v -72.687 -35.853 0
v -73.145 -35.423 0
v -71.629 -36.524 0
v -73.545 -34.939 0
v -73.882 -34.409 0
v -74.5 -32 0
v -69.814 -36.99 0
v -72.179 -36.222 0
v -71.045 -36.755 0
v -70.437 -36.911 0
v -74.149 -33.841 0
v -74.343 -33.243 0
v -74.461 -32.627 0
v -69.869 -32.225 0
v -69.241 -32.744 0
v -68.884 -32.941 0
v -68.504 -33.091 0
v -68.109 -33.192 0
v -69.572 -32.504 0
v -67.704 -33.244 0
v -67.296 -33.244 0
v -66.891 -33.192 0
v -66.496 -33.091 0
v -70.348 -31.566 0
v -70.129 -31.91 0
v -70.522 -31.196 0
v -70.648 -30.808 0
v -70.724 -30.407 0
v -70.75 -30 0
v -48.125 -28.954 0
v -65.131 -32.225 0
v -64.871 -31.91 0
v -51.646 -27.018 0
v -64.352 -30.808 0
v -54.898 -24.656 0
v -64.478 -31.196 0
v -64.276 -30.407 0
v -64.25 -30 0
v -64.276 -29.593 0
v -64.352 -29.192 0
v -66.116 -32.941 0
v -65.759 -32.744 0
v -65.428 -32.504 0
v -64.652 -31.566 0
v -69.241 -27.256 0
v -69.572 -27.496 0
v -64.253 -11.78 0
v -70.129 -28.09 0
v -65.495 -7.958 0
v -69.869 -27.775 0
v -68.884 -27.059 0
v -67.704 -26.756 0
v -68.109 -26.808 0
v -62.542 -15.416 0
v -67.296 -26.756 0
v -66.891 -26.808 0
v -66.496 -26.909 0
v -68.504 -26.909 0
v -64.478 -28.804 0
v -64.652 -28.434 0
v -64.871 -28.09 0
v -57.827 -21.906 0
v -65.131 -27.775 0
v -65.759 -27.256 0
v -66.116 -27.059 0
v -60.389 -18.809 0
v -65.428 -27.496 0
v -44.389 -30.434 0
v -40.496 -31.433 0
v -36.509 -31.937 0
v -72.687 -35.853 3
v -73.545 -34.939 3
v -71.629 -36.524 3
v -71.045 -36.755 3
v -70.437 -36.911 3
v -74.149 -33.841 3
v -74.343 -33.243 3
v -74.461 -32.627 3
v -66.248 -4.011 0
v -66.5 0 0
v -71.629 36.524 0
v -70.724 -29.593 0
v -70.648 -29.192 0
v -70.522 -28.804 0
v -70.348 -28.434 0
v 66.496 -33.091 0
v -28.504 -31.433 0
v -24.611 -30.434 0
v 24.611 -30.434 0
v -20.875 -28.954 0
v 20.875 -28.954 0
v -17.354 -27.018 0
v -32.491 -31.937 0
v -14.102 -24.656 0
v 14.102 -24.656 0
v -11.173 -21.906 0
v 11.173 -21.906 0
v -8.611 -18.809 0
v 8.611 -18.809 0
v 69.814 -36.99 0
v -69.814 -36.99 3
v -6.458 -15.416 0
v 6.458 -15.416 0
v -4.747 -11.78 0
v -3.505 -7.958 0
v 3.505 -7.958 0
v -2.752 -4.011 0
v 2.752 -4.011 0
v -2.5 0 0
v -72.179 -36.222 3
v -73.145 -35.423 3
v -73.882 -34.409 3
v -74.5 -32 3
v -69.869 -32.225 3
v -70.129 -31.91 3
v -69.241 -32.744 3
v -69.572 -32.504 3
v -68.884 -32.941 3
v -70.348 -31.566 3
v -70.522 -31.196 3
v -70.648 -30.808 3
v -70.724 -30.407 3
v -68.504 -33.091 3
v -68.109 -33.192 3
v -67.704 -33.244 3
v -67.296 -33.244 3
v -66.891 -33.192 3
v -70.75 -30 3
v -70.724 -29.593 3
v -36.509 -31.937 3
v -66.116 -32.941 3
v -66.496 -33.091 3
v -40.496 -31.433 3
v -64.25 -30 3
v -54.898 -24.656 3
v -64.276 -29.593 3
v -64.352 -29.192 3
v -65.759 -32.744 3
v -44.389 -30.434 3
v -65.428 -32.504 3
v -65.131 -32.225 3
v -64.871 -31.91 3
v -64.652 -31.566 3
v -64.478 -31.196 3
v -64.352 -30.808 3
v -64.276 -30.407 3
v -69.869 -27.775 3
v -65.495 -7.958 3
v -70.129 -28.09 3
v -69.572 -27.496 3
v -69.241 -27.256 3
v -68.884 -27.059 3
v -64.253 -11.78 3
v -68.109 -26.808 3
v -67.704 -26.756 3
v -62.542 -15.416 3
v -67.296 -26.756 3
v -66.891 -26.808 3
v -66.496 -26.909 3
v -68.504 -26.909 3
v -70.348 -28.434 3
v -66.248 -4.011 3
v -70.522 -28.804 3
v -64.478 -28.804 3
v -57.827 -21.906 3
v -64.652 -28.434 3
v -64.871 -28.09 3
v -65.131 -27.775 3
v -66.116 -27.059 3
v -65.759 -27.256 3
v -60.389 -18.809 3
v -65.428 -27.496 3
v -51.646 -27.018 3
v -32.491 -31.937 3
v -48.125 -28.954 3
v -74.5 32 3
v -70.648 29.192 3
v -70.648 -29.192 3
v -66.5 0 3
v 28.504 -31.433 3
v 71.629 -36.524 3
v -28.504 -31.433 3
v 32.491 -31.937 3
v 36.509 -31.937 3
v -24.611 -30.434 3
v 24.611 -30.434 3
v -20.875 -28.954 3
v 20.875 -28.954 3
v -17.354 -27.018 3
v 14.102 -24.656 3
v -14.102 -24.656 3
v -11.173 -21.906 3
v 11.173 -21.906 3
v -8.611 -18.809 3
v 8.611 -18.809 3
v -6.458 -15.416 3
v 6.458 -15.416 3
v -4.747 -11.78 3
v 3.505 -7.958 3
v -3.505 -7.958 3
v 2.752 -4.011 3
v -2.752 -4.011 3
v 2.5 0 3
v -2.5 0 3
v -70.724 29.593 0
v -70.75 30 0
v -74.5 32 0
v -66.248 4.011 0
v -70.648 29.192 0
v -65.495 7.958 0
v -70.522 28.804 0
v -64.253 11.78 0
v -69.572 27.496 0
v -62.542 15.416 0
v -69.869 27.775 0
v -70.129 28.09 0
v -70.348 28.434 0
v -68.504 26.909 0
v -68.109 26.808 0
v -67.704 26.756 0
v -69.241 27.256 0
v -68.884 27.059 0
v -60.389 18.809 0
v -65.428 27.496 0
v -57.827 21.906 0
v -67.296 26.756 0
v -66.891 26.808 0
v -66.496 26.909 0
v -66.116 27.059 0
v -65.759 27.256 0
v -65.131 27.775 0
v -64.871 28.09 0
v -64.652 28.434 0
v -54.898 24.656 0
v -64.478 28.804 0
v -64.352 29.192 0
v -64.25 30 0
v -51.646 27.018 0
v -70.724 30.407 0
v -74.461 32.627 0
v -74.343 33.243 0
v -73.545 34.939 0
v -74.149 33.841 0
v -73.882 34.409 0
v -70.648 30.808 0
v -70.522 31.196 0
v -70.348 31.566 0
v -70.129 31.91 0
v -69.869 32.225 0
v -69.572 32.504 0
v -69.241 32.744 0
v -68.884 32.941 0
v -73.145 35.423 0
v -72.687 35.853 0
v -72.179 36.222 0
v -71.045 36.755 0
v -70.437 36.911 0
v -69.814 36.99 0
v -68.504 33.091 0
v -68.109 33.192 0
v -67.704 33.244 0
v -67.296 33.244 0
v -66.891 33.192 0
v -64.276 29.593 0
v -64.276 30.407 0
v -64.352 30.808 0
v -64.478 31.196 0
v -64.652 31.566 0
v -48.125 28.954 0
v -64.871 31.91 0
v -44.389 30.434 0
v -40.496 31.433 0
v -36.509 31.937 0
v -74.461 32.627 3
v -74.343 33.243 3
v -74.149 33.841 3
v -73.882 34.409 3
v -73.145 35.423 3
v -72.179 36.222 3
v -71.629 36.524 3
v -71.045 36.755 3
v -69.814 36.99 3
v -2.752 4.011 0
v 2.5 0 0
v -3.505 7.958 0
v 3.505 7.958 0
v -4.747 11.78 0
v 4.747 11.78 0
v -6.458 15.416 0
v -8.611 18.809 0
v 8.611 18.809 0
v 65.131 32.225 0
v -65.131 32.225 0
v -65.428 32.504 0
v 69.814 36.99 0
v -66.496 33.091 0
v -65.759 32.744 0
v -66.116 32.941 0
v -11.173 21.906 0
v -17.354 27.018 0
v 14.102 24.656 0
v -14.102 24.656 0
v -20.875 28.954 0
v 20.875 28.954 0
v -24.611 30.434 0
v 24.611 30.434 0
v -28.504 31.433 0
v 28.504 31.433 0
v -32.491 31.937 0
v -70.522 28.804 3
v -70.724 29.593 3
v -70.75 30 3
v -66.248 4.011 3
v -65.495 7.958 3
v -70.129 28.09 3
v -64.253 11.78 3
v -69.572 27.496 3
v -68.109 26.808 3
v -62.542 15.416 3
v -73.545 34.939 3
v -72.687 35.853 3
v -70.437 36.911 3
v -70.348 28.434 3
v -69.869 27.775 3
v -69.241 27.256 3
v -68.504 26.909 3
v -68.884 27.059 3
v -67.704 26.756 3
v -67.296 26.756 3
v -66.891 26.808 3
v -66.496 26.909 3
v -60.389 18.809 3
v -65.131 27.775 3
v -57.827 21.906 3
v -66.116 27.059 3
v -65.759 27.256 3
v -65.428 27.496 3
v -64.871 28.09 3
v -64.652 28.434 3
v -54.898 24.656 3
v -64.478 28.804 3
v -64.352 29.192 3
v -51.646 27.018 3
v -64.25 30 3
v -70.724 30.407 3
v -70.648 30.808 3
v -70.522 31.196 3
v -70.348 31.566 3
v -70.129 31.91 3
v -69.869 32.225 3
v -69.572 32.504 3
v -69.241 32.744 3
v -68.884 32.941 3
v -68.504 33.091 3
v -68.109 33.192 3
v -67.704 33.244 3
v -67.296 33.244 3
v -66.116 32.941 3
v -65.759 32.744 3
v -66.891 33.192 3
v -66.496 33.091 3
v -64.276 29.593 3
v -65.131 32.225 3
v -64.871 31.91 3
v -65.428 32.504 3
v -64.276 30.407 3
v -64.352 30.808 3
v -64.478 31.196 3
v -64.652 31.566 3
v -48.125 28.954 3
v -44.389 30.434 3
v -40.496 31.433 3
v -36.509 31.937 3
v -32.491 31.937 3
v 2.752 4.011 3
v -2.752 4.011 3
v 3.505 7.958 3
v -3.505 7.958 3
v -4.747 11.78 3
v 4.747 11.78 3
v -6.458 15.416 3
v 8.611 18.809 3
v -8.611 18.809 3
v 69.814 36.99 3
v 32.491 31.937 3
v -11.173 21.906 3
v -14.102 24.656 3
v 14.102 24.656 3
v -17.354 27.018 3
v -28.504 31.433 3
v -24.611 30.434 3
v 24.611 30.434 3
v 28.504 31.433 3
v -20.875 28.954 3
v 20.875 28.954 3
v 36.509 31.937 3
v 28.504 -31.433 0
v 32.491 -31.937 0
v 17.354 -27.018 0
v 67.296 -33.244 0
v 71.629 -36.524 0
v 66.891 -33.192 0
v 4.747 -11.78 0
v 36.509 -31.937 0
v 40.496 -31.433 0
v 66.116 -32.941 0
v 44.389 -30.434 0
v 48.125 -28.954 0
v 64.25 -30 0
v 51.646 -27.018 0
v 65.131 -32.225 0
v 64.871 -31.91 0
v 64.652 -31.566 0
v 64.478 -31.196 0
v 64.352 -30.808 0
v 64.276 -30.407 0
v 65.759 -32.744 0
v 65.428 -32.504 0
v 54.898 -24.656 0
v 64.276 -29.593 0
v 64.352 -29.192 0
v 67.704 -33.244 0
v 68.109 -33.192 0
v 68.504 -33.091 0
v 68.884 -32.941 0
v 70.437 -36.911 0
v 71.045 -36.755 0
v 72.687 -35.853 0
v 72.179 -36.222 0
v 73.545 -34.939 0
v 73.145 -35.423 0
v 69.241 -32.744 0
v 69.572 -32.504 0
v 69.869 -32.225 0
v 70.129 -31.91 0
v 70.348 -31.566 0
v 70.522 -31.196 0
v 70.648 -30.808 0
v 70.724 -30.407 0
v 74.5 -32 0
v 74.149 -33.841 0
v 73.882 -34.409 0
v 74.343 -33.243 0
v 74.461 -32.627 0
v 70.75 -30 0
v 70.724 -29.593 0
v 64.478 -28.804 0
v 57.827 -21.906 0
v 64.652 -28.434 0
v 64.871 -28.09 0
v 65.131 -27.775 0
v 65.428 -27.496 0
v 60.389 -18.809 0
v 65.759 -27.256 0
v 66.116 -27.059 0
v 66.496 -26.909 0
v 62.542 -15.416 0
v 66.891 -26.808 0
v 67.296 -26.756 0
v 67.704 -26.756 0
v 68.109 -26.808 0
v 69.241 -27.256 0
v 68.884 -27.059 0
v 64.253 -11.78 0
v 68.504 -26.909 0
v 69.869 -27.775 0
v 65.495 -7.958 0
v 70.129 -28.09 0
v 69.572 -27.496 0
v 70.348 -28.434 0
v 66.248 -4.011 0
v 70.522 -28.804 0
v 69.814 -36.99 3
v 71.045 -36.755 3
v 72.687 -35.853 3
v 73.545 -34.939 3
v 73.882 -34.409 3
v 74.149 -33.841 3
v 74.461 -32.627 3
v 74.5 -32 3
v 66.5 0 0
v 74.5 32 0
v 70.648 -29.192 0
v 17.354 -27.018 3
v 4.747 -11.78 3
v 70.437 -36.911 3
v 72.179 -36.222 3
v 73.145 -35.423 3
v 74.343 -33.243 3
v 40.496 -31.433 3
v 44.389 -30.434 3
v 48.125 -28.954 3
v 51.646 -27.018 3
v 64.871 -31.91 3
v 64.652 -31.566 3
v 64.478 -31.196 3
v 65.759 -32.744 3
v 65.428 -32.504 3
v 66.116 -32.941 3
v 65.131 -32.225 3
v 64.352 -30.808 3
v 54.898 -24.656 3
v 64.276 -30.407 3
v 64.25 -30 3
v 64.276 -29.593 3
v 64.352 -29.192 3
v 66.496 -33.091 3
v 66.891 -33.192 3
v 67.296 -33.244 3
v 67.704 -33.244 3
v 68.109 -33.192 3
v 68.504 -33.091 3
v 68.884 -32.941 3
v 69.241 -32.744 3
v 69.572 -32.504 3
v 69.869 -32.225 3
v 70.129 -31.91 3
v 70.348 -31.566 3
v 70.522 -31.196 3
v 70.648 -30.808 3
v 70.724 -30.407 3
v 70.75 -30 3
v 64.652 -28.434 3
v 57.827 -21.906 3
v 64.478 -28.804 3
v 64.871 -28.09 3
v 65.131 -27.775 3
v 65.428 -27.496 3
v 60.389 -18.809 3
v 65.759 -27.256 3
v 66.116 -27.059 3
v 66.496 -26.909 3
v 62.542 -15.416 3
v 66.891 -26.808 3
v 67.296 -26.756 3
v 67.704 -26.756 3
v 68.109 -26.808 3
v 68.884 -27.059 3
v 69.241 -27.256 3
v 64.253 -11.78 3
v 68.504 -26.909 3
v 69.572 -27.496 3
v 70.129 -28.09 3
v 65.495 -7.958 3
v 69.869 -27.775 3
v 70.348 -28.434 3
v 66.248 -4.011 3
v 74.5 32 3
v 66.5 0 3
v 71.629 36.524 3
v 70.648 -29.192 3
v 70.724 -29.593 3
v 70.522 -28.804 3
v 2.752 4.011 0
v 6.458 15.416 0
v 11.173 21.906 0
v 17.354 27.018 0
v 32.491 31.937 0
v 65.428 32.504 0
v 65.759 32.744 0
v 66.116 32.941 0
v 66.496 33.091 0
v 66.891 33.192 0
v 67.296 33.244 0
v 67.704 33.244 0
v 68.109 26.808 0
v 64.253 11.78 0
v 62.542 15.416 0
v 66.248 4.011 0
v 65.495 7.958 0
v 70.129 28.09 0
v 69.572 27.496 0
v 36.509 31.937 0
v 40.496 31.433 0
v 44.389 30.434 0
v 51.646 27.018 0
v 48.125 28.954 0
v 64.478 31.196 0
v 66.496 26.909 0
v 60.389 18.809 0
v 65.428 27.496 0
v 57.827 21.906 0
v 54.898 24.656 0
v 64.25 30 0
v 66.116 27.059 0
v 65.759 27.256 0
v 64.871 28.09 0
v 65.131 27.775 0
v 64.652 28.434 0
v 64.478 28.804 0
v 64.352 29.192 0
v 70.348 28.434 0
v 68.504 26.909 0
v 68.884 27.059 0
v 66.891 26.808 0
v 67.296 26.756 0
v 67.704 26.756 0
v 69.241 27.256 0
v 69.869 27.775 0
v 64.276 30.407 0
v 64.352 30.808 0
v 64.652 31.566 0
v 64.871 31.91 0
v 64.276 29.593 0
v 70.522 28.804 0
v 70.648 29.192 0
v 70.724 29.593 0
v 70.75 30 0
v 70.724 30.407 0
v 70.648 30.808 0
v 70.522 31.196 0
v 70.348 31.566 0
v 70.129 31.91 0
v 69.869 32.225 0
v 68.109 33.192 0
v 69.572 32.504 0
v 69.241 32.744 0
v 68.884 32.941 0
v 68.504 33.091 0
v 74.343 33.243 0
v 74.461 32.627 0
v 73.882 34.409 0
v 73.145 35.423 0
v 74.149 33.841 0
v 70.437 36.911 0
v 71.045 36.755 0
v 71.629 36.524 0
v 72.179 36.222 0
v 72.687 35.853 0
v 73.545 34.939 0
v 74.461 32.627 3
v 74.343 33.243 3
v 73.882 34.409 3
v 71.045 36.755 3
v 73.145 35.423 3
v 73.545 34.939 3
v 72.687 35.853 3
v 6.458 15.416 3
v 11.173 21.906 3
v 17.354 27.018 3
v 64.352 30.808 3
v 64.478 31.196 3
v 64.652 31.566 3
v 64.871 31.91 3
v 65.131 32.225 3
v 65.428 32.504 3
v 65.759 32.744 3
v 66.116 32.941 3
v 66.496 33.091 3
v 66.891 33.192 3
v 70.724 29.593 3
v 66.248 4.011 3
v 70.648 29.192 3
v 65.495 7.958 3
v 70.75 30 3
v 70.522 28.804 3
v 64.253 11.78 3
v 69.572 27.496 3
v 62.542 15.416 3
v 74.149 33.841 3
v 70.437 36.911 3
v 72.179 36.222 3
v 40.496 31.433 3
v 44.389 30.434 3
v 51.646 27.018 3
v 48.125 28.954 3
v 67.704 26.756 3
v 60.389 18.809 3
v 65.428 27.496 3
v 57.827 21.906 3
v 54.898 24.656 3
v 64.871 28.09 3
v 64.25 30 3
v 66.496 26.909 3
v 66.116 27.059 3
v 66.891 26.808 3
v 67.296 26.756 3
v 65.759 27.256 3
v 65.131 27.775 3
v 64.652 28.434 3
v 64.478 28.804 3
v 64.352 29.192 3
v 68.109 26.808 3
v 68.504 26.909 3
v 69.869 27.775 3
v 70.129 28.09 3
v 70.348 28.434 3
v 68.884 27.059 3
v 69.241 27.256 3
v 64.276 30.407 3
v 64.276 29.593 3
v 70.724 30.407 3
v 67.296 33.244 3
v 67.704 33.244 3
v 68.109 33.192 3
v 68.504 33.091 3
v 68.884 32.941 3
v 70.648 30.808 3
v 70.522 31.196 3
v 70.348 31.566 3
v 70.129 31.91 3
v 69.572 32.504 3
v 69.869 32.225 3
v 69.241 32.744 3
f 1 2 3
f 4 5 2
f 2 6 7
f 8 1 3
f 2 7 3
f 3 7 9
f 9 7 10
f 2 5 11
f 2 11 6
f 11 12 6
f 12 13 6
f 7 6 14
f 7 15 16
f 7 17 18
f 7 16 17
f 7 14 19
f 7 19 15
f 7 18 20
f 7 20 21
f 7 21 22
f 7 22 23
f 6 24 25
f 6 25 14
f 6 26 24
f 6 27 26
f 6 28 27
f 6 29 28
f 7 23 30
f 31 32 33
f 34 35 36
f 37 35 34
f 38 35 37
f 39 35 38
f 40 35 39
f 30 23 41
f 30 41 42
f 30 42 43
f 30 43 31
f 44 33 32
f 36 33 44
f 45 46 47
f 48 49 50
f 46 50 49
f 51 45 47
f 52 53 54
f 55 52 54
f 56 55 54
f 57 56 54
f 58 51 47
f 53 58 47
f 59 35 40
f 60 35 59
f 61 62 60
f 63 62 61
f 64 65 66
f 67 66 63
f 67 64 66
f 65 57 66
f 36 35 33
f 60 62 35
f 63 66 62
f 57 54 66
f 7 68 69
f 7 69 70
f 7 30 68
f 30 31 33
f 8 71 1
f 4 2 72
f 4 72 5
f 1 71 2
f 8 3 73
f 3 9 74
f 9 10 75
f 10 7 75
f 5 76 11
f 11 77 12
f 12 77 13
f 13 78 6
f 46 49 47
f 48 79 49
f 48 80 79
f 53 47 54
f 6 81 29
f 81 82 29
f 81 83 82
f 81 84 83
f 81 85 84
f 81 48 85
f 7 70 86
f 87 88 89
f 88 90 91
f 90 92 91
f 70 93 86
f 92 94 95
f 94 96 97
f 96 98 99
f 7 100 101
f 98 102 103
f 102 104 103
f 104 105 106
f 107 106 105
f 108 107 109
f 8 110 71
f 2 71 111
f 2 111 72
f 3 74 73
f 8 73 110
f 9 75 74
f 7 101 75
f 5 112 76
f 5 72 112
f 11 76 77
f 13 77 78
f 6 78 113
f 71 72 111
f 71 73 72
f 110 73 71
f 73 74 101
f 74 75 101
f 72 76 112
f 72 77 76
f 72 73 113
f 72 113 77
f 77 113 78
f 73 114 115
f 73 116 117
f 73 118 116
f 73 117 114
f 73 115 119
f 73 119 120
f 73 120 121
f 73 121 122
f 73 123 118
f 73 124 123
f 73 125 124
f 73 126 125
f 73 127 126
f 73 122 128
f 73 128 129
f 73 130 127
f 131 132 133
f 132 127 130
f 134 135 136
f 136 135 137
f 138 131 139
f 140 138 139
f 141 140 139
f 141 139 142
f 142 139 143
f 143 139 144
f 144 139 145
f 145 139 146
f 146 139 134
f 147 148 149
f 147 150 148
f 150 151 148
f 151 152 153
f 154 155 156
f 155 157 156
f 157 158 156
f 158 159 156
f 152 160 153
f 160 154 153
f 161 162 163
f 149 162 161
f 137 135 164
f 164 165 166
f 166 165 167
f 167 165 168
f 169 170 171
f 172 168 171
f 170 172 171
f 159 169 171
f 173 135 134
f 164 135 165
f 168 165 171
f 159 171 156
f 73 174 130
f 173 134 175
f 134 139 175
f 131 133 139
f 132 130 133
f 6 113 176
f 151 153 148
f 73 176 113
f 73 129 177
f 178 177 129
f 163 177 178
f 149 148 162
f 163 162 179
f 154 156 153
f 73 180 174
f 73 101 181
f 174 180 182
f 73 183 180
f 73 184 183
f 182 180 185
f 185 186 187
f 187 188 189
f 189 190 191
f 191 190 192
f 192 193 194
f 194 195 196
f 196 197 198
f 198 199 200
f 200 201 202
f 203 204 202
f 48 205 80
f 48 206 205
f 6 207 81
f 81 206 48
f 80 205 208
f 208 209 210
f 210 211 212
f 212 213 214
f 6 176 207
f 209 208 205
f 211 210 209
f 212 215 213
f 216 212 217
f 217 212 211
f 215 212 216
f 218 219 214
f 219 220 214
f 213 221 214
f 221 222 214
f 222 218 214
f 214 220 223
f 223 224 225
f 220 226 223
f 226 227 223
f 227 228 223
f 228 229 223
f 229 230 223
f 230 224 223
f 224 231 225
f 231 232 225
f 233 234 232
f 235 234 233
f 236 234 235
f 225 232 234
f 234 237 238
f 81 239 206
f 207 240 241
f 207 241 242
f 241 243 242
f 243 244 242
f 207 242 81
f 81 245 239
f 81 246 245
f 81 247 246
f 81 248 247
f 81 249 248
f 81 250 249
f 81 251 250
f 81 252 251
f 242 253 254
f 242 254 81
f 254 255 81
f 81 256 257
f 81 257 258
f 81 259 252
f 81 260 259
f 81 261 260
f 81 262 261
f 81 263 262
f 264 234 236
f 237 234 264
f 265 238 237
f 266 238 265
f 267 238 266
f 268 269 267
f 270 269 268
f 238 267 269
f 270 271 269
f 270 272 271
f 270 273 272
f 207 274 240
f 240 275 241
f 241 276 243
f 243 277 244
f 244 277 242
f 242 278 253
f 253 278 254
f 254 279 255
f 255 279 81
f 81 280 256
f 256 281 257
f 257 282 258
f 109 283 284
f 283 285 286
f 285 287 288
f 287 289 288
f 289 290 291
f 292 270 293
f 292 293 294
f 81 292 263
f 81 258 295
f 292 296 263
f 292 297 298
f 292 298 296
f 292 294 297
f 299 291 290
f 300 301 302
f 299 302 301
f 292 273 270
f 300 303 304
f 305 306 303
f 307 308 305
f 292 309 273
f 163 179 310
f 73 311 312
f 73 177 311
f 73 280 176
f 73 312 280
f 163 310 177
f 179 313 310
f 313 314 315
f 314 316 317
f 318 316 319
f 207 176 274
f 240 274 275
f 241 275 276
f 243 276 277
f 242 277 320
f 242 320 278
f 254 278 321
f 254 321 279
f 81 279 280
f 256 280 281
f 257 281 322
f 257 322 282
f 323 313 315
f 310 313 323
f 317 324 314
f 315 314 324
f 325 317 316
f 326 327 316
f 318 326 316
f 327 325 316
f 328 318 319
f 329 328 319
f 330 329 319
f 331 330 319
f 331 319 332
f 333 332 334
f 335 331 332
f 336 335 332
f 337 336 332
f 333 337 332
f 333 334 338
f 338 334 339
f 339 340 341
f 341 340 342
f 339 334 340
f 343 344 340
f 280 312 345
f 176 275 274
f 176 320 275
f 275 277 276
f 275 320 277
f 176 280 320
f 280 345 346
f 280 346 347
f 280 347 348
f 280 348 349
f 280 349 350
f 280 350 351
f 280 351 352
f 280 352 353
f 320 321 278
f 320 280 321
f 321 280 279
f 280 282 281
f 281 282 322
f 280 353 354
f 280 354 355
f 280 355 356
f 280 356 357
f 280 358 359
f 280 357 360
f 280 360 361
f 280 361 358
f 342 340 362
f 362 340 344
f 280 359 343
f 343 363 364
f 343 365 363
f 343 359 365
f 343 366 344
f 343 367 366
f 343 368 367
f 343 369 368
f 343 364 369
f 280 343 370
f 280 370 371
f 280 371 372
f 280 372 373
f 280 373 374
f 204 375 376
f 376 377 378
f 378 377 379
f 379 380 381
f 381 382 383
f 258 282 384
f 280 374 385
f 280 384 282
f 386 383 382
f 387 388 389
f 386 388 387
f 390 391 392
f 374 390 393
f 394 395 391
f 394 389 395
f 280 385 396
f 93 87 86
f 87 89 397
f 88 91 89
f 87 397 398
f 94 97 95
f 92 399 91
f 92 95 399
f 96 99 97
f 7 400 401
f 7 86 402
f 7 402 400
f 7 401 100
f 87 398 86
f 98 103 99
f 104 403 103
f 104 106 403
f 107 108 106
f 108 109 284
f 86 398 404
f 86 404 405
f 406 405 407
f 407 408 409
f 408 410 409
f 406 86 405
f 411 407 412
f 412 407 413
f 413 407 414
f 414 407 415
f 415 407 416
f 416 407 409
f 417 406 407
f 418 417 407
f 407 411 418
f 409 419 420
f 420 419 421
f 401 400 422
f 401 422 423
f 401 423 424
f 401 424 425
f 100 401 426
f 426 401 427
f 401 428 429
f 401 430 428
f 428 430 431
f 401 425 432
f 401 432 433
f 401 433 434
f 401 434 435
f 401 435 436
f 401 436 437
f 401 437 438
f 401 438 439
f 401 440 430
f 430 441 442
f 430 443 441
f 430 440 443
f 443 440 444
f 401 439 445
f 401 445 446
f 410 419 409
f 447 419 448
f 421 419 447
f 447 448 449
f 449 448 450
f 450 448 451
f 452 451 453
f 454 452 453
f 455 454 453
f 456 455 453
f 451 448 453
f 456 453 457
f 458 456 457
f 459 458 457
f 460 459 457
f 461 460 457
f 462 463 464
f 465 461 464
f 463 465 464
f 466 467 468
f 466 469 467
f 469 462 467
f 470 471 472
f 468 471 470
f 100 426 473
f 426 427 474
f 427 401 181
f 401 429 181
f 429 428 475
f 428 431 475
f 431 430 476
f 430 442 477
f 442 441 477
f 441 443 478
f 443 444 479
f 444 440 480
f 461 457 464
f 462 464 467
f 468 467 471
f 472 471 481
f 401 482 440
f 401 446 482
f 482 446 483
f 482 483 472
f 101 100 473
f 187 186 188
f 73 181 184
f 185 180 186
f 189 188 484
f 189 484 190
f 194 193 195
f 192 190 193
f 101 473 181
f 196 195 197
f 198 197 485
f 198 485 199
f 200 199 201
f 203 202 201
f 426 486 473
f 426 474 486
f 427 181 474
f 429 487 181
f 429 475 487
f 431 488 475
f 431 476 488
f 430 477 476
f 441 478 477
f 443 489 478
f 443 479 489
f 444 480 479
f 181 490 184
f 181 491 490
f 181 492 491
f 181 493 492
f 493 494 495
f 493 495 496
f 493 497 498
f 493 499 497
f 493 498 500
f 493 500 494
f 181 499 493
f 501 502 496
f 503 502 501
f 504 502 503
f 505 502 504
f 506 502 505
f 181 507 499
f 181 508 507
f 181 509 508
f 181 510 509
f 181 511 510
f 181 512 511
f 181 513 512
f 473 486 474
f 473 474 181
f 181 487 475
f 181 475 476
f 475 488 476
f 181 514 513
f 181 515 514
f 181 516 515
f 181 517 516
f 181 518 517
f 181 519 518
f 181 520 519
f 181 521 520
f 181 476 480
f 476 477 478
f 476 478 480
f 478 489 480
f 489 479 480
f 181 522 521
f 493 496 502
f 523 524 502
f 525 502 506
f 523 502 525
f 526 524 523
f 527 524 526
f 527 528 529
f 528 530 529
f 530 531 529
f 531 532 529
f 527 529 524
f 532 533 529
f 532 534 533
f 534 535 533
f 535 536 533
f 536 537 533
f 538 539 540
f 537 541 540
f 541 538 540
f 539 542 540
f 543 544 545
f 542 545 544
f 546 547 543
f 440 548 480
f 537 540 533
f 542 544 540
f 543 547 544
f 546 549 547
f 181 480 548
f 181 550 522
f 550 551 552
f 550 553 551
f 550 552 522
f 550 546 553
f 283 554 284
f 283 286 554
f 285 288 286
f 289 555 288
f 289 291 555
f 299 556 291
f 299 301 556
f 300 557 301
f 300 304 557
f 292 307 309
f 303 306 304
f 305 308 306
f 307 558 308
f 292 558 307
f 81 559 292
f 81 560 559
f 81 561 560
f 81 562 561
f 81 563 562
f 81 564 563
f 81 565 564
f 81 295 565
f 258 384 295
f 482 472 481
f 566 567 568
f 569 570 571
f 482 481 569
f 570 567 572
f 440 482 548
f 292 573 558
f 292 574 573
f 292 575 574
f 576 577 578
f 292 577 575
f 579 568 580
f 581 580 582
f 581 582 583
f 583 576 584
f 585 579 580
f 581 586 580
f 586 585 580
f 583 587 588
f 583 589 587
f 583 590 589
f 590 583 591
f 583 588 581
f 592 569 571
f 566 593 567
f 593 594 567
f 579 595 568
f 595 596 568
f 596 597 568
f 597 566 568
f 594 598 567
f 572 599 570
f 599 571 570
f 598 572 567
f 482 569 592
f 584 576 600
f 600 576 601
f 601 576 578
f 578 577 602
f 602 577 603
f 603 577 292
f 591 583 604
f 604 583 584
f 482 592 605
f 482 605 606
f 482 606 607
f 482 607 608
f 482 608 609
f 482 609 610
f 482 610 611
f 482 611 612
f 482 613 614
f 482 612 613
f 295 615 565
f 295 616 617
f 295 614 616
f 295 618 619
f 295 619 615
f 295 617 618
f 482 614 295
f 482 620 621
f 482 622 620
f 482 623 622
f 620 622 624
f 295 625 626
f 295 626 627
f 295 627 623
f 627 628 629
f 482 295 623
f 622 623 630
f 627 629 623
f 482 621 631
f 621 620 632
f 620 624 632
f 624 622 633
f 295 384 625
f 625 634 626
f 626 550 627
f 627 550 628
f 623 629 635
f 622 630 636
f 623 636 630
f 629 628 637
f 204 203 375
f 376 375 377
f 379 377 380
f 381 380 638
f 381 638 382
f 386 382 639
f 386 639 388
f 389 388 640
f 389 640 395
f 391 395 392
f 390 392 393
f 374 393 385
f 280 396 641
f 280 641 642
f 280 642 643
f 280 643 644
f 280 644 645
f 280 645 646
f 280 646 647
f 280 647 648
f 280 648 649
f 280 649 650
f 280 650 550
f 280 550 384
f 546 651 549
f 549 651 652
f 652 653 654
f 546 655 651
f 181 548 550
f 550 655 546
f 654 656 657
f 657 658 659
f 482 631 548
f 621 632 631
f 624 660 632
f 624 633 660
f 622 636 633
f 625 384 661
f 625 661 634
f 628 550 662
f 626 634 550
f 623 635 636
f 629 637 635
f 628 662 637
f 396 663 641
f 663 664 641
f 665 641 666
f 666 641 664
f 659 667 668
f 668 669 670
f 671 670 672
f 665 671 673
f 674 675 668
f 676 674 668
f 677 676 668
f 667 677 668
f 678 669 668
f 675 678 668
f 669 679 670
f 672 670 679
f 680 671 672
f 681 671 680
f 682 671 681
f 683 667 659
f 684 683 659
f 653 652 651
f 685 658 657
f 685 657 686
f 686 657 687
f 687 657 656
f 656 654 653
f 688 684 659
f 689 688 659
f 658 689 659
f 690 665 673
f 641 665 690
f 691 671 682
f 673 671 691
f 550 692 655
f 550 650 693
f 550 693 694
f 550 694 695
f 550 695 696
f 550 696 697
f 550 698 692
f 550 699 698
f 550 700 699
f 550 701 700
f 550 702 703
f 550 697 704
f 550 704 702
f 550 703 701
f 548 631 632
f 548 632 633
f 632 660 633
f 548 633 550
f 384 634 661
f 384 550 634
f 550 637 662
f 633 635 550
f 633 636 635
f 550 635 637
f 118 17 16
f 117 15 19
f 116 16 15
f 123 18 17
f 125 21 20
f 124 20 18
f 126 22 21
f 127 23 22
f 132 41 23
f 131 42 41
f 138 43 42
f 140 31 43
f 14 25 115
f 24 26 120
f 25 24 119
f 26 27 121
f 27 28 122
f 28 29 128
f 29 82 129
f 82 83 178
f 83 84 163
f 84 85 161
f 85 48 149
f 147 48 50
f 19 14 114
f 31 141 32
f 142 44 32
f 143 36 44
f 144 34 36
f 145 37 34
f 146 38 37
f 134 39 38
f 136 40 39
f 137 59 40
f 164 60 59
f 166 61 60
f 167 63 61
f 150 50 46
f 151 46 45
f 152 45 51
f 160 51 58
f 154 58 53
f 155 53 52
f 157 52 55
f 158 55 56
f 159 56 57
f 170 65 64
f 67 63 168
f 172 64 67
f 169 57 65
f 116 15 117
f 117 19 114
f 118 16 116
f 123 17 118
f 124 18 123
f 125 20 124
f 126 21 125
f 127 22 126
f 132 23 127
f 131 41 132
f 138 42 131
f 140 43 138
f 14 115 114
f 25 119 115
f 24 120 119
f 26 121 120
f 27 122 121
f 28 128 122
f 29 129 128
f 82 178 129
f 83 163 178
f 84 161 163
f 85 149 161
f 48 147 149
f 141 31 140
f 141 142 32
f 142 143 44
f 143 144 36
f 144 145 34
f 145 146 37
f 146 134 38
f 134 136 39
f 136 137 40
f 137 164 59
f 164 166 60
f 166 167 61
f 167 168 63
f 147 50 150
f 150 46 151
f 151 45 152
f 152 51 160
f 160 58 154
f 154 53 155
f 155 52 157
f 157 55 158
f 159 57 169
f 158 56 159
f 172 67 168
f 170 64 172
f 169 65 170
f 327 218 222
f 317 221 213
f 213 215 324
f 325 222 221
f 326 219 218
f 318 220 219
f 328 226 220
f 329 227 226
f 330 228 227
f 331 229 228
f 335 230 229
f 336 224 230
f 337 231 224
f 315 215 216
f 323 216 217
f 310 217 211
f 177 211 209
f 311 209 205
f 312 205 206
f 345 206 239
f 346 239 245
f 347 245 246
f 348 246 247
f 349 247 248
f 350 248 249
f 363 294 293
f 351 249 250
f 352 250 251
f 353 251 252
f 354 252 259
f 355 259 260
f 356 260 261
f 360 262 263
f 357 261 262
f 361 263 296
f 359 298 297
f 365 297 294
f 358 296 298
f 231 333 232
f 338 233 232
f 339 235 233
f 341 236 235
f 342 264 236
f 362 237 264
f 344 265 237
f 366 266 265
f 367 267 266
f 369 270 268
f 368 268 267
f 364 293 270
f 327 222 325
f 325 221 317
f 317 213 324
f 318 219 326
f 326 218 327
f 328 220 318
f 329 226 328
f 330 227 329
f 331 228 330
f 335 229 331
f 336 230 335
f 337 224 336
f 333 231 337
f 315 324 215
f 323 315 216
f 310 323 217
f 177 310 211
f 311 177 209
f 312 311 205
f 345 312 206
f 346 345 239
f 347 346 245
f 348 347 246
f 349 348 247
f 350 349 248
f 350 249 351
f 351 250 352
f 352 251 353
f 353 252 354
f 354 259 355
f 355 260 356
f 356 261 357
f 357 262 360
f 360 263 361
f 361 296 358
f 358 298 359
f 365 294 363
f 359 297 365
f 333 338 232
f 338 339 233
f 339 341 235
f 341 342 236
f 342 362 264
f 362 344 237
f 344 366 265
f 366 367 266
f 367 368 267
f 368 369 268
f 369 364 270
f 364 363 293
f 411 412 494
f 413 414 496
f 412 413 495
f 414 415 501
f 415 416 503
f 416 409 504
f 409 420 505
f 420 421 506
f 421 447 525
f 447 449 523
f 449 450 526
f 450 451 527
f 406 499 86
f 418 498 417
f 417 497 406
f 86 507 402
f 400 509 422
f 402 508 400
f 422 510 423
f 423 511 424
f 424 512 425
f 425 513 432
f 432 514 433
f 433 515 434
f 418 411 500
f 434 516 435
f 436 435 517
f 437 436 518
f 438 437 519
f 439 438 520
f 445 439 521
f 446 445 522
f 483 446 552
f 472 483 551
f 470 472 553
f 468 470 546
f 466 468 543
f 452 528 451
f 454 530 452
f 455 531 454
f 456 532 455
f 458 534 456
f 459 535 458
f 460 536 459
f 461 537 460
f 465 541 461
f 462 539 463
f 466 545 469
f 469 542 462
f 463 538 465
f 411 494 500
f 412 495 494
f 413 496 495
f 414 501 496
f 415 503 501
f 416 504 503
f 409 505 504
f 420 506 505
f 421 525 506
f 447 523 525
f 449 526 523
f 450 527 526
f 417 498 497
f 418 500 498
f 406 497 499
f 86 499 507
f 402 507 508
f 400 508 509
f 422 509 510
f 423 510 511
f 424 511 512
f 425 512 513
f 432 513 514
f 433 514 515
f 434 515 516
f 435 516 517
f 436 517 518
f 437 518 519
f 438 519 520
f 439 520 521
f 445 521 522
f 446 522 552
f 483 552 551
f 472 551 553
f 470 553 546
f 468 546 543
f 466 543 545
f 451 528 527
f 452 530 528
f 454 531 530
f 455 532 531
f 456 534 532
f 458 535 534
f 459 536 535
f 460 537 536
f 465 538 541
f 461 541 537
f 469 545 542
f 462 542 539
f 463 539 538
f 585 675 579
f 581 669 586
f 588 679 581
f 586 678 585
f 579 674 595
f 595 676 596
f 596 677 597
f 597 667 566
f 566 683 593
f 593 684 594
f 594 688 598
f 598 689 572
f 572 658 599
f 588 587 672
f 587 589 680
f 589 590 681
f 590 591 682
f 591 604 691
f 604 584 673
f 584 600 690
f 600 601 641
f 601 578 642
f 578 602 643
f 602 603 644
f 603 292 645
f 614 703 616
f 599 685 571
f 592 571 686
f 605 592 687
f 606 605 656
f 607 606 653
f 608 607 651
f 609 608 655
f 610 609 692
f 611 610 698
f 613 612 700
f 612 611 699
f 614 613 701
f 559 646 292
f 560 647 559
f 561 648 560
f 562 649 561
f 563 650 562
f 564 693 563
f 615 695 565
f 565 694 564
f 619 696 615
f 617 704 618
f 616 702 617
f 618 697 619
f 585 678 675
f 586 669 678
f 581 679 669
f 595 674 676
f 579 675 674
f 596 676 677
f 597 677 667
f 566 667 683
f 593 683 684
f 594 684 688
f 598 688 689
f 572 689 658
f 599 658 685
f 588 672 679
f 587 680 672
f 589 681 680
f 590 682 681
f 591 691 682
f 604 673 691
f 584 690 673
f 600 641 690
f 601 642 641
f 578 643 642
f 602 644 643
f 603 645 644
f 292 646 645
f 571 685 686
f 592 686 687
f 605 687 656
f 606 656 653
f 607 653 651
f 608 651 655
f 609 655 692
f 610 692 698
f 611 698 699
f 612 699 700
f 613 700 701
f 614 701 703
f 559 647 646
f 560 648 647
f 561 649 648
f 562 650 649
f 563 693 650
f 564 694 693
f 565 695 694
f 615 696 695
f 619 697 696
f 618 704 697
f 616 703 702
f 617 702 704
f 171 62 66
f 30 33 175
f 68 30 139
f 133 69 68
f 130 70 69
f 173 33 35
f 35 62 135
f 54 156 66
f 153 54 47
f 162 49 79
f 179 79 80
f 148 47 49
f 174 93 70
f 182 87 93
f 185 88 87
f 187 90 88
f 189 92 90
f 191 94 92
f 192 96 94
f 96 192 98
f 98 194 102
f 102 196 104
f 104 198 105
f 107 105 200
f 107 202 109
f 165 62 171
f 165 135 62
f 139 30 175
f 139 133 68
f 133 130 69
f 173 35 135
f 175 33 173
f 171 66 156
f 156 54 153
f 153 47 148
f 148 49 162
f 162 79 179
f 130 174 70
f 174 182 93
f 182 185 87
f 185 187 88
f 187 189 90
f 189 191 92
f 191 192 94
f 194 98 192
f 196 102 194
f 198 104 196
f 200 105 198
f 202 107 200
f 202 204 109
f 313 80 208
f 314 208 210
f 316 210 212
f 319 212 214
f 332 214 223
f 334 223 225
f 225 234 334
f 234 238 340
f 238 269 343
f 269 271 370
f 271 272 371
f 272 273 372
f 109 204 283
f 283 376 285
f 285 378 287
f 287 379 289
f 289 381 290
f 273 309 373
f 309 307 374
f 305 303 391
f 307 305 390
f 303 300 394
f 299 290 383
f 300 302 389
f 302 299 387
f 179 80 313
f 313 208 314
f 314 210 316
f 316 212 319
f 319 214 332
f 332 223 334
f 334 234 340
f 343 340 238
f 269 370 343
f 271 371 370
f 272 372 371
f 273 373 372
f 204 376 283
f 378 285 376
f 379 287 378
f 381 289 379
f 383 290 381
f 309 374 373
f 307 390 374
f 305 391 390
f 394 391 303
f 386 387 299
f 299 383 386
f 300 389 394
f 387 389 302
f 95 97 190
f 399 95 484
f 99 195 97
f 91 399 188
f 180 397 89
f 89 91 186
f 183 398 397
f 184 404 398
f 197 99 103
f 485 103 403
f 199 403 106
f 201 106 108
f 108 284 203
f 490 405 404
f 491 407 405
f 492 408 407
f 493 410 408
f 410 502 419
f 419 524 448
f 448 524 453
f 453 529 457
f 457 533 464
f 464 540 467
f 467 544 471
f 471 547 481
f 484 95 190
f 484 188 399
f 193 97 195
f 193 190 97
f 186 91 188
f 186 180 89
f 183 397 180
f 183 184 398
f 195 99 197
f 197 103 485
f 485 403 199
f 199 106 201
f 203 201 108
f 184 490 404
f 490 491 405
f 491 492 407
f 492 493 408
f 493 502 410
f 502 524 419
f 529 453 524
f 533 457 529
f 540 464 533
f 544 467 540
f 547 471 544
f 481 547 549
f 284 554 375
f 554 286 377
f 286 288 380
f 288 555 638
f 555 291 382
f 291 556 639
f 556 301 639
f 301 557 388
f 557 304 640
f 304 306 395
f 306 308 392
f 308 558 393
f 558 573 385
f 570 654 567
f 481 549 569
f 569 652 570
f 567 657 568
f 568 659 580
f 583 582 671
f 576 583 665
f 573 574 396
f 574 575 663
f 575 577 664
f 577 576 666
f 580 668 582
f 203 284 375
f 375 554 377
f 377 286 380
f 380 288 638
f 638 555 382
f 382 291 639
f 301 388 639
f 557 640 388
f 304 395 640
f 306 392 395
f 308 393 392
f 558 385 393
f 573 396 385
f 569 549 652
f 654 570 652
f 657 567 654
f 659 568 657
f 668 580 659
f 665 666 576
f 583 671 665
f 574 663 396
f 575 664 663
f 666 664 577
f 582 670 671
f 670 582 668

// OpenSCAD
$fn = 50;

difference() {
	union() {
		hull() {
			translate(v = [-69.5, 32.0, 0]) {
				cylinder(h = 3, r = 5);
			}
			translate(v = [69.5, 32.0, 0]) {
				cylinder(h = 3, r = 5);
			}
			translate(v = [-69.5, -32.0, 0]) {
				cylinder(h = 3, r = 5);
			}
			translate(v = [69.5, -32.0, 0]) {
				cylinder(h = 3, r = 5);
			}
		}
	}
	union() {
		translate(v = [-67.5, -30.0, -100.0]) {
			cylinder(h = 200, r = 3.25);
		}
		translate(v = [-67.5, 30.0, -100.0]) {
			cylinder(h = 200, r = 3.25);
		}
		translate(v = [67.5, -30.0, -100.0]) {
			cylinder(h = 200, r = 3.25);
		}
		translate(v = [67.5, 30.0, -100.0]) {
			cylinder(h = 200, r = 3.25);
		}
		translate(v = [-67.5, -30.0, -100.0]) {
			cylinder(h = 200, r = 1.8);
		}
		translate(v = [-67.5, 30.0, -100.0]) {
			cylinder(h = 200, r = 1.8);
		}
		translate(v = [67.5, -30.0, -100.0]) {
			cylinder(h = 200, r = 1.8);
		}
		translate(v = [67.5, 30.0, -100.0]) {
			cylinder(h = 200, r = 1.8);
		}
		translate(v = [-34.5, 0, 0.0]) {
			cylinder(h = 3, r = 32.0);
		}
		translate(v = [34.5, 0, 0.0]) {
			cylinder(h = 3, r = 32.0);
		}
	}
}
